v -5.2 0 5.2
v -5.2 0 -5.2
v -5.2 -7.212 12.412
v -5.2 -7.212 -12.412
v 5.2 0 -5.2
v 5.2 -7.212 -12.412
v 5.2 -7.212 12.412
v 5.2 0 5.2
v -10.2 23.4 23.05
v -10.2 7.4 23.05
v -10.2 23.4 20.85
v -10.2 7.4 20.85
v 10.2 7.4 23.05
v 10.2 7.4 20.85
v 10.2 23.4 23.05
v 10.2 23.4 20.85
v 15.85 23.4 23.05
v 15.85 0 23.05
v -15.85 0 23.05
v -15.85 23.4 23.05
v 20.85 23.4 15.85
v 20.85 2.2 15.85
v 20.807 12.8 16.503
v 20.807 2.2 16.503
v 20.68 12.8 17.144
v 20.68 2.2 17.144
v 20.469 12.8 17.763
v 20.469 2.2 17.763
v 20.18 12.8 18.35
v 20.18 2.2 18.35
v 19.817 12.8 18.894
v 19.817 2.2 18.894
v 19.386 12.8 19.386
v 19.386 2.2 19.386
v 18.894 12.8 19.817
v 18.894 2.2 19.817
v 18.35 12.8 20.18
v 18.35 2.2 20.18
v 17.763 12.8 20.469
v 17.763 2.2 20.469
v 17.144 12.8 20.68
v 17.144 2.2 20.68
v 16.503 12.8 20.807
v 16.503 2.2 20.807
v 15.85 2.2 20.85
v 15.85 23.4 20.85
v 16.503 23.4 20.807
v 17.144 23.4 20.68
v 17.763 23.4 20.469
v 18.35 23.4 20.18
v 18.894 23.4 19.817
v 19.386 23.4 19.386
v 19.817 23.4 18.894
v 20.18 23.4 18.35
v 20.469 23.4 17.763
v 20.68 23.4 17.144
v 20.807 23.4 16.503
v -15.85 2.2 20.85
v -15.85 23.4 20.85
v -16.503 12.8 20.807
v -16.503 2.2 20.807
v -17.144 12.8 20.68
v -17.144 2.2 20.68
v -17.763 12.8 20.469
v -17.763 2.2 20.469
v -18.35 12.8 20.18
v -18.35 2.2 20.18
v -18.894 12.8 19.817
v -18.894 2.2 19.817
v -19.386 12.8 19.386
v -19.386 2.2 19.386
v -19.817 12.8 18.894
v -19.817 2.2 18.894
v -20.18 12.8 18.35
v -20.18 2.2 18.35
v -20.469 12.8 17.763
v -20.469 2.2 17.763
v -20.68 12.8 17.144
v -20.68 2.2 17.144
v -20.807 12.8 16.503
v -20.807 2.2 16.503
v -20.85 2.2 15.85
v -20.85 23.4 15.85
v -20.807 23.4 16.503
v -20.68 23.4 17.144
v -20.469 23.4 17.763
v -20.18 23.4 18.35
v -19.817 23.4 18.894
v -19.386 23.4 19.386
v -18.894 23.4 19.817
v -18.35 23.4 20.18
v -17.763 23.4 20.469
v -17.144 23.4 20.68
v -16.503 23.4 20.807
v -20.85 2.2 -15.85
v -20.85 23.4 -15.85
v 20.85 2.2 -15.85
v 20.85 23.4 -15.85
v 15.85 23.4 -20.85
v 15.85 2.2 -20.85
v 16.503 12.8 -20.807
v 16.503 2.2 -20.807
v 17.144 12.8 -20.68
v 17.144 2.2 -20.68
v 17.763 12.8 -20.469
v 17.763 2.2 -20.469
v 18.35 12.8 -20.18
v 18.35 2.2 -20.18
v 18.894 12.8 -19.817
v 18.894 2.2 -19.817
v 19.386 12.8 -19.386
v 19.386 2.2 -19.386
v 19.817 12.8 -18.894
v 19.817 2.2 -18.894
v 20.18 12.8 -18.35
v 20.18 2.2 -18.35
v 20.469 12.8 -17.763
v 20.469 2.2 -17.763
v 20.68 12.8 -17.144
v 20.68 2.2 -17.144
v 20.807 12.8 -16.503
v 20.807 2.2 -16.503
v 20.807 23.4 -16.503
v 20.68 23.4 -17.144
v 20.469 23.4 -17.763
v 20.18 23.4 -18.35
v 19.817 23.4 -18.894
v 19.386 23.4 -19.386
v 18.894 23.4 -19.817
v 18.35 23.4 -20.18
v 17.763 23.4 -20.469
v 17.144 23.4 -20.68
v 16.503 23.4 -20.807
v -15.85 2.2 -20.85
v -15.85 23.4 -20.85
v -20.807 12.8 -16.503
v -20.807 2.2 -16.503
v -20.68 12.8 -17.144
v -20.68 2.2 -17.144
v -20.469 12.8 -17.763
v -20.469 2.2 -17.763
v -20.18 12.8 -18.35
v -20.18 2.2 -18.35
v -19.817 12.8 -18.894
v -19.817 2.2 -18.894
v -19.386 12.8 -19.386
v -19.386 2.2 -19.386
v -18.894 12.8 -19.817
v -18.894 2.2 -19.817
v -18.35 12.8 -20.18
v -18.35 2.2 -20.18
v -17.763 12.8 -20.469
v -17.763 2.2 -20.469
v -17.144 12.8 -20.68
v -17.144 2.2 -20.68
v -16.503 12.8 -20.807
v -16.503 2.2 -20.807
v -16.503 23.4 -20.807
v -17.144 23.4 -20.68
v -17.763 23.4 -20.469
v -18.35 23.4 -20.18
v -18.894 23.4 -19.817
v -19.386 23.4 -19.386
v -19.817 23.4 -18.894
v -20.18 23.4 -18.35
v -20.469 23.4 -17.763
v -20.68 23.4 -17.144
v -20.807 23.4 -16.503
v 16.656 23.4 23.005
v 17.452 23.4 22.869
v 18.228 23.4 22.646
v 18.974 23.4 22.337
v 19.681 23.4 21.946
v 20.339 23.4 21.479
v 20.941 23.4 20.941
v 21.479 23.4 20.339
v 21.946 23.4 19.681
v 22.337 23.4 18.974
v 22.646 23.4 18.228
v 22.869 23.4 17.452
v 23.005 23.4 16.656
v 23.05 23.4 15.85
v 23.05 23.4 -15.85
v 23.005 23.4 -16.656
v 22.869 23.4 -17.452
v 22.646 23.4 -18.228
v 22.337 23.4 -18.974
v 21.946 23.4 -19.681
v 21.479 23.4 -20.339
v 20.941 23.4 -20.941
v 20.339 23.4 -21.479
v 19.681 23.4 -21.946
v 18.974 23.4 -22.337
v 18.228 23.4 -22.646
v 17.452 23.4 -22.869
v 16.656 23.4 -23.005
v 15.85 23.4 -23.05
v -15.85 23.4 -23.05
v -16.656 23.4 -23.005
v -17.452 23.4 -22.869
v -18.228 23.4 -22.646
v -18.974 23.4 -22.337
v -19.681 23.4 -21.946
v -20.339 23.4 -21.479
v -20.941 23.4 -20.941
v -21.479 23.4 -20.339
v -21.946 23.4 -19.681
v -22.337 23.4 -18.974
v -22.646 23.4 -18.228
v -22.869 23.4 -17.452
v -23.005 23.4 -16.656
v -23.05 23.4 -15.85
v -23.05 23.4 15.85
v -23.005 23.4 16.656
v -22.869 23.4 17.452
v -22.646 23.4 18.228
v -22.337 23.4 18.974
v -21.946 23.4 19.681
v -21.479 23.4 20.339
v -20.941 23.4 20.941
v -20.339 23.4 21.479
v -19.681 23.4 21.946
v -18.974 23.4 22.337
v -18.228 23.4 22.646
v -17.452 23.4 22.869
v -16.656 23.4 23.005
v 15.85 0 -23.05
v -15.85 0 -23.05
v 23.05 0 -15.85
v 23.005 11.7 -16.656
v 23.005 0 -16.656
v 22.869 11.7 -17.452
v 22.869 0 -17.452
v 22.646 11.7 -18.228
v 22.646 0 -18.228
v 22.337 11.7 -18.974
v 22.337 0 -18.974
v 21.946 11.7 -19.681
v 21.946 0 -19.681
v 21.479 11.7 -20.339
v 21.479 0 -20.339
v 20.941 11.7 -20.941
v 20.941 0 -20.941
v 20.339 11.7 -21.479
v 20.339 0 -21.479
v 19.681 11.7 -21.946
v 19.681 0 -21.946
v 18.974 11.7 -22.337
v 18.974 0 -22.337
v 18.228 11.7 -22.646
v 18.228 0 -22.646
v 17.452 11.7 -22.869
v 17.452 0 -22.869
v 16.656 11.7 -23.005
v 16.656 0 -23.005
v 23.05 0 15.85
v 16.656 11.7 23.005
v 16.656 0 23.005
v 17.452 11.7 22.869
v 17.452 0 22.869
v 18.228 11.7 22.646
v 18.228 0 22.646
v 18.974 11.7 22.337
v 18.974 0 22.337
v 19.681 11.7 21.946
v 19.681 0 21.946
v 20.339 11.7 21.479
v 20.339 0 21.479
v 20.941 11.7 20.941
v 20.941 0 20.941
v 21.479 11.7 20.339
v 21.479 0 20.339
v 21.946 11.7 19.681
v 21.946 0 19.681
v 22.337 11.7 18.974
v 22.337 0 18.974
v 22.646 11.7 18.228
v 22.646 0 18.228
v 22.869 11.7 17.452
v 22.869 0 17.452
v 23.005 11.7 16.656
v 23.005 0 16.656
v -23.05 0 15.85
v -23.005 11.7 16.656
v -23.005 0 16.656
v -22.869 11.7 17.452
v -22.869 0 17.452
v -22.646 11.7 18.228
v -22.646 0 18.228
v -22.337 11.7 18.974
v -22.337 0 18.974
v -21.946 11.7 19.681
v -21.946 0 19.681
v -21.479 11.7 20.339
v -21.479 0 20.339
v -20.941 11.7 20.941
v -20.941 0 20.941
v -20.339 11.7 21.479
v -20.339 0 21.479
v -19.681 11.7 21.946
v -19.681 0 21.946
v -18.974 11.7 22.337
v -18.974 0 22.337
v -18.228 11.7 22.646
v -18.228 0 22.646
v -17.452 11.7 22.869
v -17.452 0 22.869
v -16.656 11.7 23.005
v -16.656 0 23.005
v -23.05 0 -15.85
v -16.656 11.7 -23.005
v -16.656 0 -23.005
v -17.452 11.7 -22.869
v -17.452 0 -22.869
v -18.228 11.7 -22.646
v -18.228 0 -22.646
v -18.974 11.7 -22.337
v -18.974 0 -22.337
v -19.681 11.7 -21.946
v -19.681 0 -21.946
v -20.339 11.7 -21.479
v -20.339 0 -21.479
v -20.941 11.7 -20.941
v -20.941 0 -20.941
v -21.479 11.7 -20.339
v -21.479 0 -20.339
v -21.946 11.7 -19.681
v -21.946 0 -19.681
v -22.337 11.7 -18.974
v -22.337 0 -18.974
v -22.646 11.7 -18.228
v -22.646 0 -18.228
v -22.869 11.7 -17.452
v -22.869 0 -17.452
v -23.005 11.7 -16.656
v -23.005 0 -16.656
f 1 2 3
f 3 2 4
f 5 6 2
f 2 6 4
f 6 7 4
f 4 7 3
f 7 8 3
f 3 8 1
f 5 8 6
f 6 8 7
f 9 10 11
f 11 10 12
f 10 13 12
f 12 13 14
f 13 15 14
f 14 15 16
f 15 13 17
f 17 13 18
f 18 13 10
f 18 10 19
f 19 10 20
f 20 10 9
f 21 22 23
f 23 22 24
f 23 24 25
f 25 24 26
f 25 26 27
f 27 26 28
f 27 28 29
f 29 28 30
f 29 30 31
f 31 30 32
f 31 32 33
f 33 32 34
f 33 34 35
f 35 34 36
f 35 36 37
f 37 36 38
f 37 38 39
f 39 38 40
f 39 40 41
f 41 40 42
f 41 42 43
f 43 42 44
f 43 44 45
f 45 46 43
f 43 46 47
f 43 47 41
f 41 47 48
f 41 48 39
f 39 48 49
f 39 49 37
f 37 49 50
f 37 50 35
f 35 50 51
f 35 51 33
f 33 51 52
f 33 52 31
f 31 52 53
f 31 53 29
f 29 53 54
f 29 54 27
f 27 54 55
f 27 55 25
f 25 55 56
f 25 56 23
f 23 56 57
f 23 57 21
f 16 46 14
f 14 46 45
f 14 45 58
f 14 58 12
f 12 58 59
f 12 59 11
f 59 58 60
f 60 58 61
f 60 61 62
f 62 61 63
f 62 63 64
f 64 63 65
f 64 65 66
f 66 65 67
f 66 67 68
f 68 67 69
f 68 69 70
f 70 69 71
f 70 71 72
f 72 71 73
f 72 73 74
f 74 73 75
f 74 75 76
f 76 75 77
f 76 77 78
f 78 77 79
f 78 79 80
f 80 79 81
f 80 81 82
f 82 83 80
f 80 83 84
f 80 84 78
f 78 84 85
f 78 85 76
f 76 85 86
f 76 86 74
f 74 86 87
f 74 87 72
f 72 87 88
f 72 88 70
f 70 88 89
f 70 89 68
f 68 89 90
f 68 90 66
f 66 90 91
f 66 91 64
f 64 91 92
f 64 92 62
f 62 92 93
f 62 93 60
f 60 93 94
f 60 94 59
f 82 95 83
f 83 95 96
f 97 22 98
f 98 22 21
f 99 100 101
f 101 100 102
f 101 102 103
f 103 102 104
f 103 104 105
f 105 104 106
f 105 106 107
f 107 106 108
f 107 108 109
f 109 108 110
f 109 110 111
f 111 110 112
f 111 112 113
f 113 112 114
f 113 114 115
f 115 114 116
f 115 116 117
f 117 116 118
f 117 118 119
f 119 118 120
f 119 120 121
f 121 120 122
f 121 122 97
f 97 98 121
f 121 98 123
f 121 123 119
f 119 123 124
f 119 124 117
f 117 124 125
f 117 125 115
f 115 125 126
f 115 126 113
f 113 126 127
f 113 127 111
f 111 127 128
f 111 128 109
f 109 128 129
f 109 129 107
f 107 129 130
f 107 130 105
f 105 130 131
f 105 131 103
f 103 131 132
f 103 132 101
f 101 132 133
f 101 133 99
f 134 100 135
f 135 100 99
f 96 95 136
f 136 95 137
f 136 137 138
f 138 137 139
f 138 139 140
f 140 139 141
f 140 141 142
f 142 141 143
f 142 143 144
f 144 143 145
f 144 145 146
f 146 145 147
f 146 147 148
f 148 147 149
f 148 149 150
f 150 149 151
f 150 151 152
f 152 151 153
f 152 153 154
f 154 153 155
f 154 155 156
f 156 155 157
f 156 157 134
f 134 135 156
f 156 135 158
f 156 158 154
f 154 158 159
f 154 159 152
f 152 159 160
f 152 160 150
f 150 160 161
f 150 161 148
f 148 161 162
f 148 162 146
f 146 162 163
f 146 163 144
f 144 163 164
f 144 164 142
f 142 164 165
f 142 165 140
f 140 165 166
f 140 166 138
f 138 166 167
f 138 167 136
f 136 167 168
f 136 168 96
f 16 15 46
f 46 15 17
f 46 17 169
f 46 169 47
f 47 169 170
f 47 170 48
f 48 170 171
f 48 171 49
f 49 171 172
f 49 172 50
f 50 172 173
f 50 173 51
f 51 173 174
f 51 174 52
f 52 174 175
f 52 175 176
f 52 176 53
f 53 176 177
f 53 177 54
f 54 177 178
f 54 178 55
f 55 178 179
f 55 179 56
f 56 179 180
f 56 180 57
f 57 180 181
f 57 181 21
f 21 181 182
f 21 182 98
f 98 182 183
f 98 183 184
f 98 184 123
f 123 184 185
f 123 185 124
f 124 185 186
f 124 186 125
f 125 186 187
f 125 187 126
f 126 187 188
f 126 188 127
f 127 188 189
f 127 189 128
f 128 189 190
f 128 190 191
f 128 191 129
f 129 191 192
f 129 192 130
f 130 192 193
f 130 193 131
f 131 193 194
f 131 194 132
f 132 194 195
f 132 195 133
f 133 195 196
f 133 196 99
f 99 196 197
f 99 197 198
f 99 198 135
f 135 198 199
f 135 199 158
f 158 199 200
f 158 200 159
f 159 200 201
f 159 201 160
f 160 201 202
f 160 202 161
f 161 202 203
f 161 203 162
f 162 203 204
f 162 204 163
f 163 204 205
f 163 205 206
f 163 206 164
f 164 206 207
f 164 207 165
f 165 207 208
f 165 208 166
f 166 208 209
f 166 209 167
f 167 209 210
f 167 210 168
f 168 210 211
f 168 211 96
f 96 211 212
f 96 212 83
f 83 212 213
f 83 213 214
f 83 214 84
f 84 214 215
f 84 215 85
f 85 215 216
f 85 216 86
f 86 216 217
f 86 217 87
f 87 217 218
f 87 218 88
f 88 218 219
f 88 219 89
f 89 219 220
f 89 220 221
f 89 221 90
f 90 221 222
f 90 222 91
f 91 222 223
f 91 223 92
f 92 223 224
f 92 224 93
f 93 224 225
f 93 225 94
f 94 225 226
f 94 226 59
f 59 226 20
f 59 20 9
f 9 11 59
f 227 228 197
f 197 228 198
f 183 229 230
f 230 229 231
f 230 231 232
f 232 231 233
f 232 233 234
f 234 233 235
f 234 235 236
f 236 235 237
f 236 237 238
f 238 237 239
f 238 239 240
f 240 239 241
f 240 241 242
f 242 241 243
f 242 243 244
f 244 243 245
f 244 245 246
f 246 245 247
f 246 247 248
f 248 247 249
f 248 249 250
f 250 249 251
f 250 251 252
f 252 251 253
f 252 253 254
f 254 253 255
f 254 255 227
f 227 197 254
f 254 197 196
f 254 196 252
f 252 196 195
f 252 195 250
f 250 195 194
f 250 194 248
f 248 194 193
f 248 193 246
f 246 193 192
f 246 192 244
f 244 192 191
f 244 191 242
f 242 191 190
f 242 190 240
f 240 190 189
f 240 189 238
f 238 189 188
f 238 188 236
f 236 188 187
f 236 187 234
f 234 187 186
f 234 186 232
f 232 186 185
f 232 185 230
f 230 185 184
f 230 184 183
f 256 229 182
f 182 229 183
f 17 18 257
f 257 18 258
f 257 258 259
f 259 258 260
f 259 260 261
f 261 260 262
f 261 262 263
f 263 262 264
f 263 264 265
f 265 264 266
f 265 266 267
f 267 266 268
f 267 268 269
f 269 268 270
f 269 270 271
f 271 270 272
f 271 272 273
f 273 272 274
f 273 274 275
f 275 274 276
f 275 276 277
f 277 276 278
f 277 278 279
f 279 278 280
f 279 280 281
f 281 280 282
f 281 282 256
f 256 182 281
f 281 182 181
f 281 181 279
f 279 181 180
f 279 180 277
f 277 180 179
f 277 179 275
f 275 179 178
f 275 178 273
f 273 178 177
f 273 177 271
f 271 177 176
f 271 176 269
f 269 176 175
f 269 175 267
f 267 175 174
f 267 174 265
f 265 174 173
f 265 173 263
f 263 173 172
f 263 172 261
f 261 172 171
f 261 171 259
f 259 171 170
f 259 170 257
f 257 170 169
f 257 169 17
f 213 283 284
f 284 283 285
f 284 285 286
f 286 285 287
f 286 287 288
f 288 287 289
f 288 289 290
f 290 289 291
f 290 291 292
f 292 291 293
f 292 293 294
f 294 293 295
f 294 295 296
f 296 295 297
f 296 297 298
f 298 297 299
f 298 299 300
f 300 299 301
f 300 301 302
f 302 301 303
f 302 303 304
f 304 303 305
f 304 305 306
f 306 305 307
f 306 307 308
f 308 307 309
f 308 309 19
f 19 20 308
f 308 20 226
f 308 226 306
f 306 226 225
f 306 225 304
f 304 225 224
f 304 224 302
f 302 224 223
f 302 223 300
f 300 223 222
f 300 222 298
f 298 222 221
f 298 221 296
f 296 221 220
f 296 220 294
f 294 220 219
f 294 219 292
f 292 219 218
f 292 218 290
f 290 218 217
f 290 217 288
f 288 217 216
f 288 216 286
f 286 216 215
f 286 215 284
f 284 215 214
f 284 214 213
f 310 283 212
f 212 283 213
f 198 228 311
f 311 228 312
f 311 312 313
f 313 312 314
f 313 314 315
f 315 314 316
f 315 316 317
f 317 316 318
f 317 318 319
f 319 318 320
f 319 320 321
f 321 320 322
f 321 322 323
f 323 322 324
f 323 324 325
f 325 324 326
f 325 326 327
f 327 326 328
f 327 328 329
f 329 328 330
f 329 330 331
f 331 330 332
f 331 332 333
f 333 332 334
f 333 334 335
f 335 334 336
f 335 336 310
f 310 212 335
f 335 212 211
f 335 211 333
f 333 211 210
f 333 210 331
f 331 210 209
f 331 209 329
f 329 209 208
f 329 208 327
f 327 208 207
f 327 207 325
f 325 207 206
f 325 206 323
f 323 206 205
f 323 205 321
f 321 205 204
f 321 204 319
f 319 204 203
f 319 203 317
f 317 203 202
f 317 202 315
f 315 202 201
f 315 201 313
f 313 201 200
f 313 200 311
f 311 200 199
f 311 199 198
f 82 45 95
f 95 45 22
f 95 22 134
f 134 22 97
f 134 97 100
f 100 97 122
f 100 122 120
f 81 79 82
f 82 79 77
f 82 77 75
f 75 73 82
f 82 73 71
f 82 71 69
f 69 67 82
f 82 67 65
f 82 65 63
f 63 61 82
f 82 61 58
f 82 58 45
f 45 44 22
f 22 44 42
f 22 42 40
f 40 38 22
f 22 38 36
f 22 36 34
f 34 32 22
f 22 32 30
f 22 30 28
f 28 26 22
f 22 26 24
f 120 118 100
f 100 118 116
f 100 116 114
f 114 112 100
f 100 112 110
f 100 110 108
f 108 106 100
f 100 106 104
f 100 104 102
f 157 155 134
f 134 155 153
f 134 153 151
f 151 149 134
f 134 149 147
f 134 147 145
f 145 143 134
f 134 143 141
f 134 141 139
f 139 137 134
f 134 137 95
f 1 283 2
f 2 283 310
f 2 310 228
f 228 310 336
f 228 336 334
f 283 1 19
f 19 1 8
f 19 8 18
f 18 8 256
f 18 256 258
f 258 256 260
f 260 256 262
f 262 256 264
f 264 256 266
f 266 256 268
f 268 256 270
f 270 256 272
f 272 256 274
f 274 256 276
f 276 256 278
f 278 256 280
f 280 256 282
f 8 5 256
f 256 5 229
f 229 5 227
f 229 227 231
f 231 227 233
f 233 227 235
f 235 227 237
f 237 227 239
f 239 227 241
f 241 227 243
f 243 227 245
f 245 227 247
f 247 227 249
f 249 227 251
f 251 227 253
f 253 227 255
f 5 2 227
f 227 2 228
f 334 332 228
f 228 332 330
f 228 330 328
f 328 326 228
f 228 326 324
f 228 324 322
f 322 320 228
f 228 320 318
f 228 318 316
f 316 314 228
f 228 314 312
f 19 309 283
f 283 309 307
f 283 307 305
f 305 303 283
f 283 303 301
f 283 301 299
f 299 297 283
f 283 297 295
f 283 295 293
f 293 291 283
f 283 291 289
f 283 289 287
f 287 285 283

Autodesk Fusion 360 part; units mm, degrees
sketch "Sketch1" plane through (0, 0, 0) normal (0, 1, 0) x (1, 0, 0)
  line L0 (-15.85, 20.85) -> (15.85, 20.85)
  line L1 (20.85, 15.85) -> (20.85, -15.85)
  line L2 (15.85, -20.85) -> (-15.85, -20.85)
  line L3 (-20.85, -15.85) -> (-20.85, 15.85)
  line L4 (-20.85, 20.85) -> (20.85, -20.85) construction
  line L5 (20.85, 20.85) -> (-20.85, -20.85) construction
  arc A0 (-15.85, 20.85) -> (-20.85, 15.85) centre (-15.85, 15.85) ccw
  arc A1 (20.85, 15.85) -> (15.85, 20.85) centre (15.85, 15.85) ccw
  arc A2 (15.85, -20.85) -> (20.85, -15.85) centre (15.85, -15.85) ccw
  arc A3 (-20.85, -15.85) -> (-15.85, -20.85) centre (-15.85, -15.85) ccw
  arc A4 (23.05, 15.85) -> (15.85, 23.05) centre (15.85, 15.85) ccw
  line L6 (-15.85, 23.05) -> (15.85, 23.05)
  arc A5 (-15.85, 23.05) -> (-23.05, 15.85) centre (-15.85, 15.85) ccw
  line L7 (-23.05, -15.85) -> (-23.05, 15.85)
  arc A6 (-23.05, -15.85) -> (-15.85, -23.05) centre (-15.85, -15.85) ccw
  line L8 (15.85, -23.05) -> (-15.85, -23.05)
  arc A7 (15.85, -23.05) -> (23.05, -15.85) centre (15.85, -15.85) ccw
  line L9 (23.05, 15.85) -> (23.05, -15.85)
  dimension "d1" = 41.7
  dimension "d2" = 41.7
  dimension "d3" = 5
  dimension "d4" = -2.2
extrude "Extrude1" add sketch "Sketch1" along normal blind 2.2 contours L0 L1 L2 L3 A0 A1 A2 A3 | A4 L6 A5 L7 A6 L8 A7 L9
extrude "Extrude2" add sketch "Sketch1" along normal blind 23.4
sketch "Sketch2" plane through (0, 0, 23.05) normal (0, 0, 1) x (1, 0, 0)
  line L0 (-15.85, 0) -> (15.85, 0)
  line L1 (15.85, 0) -> (15.85, 23.4)
  line L2 (15.85, 23.4) -> (-15.85, 23.4)
  line L3 (-15.85, 23.4) -> (-15.85, 0)
  line L4 (10.2, 7.4) -> (-10.2, 7.4)
  line L5 (-10.2, 7.4) -> (-10.2, 23.4)
  line L6 (-10.2, 23.4) -> (10.2, 23.4)
  line L7 (10.2, 23.4) -> (10.2, 7.4)
  line L8 (-23.05, 0) -> (-23.05, 23.4)
  line L9 (23.05, 0) -> (23.05, 23.4)
  dimension "d9" = 7.4
  dimension "d10" = 20.4
  dimension "d11" = 16
  dimension "d13" = 12.85
  dimension "d14" = 12.85
extrude "Extrude3" cut sketch "Sketch2" against normal blind 2.2 contours L2 L4 L5 L6 L7
ref_plane "WorkPlane1" through (0, 11.7, 0) normal (1, 0, 0) x (0, 0, -1)
sketch "Sketch3" plane through (0, 0, 0) normal (1, 0, 0) x (0, 0, -1)
  line L0 (5.2, 0) -> (12.4125, -7.2125)
  line L1 (5.2, 0) -> (14.8, 0) construction
  line L2 (5.2, 0) -> (-5.2, 0)
  line L3 (-5.2, 0) -> (-12.4125, -7.2125)
  line L4 (12.4125, -7.2125) -> (-12.4125, -7.2125)
  point P0 (23.05, 0)
  point P1 (-23.05, 0)
  dimension "d18" = 10.2
  dimension "d19" = 45
  dimension "d20" = 45
  dimension "d21" = 10.2
  dimension "d22" = 10.4
  dimension "d23" = 17.85
  dimension "d24" = 17.85
extrude "Extrude4" add sketch "Sketch3" along normal mid plane 10.4
equation "d1 = 41.3 mm + 0.2 mm + 0.2 mm"
equation "d2 = 41.3 mm + 0.2 mm + 0.2 mm"
equation "d4 = -( 2 mm + 0.2 mm )"
equation "d5 = 2 mm + 0.2 mm"
equation "d7 = 2 mm + 0.2 mm + 21 mm + 0.2 mm"
equation "d9 = 2 mm + 0.2 mm + 5 mm + 0.2 mm"
equation "d10 = 20 mm + 0.2 mm + 0.2 mm"
equation "d11 = ( 2 mm + 0.2 mm + 21 mm + 0.2 mm ) - ( 2 mm + 0.2 mm + 5 mm + 0.2 mm )"
equation "d13 = ( ( 41.3 mm + 0.2 mm + 0.2 mm + 2 mm + 0.2 mm + 2 mm + 0.2 mm ) - ( 20 mm + 0.2 mm + 0.2 mm ) ) / 2"
equation "d15 = -( 2 mm + 0.2 mm )"
equation "d17 = -( ( ( 41.3 + 0.2 + 0.2 + 2 + 0.2 + 2 + 0.2 ) / 2 ) * 1 mm )"
equation "d18 = 10 mm + 0.2 mm"
equation "d21 = 10 mm + 0.2 mm"
equation "d22 = 10 mm + 0.2 mm + 0.2 mm"
equation "d23 = ( ( ( 41.3 + 0.2 + 0.2 + 2 + 0.2 + 2 + 0.2 ) / 2 ) * 1 mm ) - ( 5 mm + 0.2 mm )"
equation "d25 = 5 mm + 0.2 mm"
